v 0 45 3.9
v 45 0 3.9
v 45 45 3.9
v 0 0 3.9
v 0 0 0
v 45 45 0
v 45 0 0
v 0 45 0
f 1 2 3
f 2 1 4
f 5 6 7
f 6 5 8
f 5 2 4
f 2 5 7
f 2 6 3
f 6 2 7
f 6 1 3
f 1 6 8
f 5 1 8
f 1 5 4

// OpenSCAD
/* Warning, this is a very basic generator with a lot of approximation 
input data : [BBGA, 7JC, 45x45x3.90mm, 1894, , A, C04-25090A]
generated by com.zoubworld.electronics.cad.model3d.Basic
Date : Sun Feb 15 10:50:49 CET 2026
*/

//body
color("black")
translate([0,0,0])
cube([45.0,45.0,3.9], center=false);
